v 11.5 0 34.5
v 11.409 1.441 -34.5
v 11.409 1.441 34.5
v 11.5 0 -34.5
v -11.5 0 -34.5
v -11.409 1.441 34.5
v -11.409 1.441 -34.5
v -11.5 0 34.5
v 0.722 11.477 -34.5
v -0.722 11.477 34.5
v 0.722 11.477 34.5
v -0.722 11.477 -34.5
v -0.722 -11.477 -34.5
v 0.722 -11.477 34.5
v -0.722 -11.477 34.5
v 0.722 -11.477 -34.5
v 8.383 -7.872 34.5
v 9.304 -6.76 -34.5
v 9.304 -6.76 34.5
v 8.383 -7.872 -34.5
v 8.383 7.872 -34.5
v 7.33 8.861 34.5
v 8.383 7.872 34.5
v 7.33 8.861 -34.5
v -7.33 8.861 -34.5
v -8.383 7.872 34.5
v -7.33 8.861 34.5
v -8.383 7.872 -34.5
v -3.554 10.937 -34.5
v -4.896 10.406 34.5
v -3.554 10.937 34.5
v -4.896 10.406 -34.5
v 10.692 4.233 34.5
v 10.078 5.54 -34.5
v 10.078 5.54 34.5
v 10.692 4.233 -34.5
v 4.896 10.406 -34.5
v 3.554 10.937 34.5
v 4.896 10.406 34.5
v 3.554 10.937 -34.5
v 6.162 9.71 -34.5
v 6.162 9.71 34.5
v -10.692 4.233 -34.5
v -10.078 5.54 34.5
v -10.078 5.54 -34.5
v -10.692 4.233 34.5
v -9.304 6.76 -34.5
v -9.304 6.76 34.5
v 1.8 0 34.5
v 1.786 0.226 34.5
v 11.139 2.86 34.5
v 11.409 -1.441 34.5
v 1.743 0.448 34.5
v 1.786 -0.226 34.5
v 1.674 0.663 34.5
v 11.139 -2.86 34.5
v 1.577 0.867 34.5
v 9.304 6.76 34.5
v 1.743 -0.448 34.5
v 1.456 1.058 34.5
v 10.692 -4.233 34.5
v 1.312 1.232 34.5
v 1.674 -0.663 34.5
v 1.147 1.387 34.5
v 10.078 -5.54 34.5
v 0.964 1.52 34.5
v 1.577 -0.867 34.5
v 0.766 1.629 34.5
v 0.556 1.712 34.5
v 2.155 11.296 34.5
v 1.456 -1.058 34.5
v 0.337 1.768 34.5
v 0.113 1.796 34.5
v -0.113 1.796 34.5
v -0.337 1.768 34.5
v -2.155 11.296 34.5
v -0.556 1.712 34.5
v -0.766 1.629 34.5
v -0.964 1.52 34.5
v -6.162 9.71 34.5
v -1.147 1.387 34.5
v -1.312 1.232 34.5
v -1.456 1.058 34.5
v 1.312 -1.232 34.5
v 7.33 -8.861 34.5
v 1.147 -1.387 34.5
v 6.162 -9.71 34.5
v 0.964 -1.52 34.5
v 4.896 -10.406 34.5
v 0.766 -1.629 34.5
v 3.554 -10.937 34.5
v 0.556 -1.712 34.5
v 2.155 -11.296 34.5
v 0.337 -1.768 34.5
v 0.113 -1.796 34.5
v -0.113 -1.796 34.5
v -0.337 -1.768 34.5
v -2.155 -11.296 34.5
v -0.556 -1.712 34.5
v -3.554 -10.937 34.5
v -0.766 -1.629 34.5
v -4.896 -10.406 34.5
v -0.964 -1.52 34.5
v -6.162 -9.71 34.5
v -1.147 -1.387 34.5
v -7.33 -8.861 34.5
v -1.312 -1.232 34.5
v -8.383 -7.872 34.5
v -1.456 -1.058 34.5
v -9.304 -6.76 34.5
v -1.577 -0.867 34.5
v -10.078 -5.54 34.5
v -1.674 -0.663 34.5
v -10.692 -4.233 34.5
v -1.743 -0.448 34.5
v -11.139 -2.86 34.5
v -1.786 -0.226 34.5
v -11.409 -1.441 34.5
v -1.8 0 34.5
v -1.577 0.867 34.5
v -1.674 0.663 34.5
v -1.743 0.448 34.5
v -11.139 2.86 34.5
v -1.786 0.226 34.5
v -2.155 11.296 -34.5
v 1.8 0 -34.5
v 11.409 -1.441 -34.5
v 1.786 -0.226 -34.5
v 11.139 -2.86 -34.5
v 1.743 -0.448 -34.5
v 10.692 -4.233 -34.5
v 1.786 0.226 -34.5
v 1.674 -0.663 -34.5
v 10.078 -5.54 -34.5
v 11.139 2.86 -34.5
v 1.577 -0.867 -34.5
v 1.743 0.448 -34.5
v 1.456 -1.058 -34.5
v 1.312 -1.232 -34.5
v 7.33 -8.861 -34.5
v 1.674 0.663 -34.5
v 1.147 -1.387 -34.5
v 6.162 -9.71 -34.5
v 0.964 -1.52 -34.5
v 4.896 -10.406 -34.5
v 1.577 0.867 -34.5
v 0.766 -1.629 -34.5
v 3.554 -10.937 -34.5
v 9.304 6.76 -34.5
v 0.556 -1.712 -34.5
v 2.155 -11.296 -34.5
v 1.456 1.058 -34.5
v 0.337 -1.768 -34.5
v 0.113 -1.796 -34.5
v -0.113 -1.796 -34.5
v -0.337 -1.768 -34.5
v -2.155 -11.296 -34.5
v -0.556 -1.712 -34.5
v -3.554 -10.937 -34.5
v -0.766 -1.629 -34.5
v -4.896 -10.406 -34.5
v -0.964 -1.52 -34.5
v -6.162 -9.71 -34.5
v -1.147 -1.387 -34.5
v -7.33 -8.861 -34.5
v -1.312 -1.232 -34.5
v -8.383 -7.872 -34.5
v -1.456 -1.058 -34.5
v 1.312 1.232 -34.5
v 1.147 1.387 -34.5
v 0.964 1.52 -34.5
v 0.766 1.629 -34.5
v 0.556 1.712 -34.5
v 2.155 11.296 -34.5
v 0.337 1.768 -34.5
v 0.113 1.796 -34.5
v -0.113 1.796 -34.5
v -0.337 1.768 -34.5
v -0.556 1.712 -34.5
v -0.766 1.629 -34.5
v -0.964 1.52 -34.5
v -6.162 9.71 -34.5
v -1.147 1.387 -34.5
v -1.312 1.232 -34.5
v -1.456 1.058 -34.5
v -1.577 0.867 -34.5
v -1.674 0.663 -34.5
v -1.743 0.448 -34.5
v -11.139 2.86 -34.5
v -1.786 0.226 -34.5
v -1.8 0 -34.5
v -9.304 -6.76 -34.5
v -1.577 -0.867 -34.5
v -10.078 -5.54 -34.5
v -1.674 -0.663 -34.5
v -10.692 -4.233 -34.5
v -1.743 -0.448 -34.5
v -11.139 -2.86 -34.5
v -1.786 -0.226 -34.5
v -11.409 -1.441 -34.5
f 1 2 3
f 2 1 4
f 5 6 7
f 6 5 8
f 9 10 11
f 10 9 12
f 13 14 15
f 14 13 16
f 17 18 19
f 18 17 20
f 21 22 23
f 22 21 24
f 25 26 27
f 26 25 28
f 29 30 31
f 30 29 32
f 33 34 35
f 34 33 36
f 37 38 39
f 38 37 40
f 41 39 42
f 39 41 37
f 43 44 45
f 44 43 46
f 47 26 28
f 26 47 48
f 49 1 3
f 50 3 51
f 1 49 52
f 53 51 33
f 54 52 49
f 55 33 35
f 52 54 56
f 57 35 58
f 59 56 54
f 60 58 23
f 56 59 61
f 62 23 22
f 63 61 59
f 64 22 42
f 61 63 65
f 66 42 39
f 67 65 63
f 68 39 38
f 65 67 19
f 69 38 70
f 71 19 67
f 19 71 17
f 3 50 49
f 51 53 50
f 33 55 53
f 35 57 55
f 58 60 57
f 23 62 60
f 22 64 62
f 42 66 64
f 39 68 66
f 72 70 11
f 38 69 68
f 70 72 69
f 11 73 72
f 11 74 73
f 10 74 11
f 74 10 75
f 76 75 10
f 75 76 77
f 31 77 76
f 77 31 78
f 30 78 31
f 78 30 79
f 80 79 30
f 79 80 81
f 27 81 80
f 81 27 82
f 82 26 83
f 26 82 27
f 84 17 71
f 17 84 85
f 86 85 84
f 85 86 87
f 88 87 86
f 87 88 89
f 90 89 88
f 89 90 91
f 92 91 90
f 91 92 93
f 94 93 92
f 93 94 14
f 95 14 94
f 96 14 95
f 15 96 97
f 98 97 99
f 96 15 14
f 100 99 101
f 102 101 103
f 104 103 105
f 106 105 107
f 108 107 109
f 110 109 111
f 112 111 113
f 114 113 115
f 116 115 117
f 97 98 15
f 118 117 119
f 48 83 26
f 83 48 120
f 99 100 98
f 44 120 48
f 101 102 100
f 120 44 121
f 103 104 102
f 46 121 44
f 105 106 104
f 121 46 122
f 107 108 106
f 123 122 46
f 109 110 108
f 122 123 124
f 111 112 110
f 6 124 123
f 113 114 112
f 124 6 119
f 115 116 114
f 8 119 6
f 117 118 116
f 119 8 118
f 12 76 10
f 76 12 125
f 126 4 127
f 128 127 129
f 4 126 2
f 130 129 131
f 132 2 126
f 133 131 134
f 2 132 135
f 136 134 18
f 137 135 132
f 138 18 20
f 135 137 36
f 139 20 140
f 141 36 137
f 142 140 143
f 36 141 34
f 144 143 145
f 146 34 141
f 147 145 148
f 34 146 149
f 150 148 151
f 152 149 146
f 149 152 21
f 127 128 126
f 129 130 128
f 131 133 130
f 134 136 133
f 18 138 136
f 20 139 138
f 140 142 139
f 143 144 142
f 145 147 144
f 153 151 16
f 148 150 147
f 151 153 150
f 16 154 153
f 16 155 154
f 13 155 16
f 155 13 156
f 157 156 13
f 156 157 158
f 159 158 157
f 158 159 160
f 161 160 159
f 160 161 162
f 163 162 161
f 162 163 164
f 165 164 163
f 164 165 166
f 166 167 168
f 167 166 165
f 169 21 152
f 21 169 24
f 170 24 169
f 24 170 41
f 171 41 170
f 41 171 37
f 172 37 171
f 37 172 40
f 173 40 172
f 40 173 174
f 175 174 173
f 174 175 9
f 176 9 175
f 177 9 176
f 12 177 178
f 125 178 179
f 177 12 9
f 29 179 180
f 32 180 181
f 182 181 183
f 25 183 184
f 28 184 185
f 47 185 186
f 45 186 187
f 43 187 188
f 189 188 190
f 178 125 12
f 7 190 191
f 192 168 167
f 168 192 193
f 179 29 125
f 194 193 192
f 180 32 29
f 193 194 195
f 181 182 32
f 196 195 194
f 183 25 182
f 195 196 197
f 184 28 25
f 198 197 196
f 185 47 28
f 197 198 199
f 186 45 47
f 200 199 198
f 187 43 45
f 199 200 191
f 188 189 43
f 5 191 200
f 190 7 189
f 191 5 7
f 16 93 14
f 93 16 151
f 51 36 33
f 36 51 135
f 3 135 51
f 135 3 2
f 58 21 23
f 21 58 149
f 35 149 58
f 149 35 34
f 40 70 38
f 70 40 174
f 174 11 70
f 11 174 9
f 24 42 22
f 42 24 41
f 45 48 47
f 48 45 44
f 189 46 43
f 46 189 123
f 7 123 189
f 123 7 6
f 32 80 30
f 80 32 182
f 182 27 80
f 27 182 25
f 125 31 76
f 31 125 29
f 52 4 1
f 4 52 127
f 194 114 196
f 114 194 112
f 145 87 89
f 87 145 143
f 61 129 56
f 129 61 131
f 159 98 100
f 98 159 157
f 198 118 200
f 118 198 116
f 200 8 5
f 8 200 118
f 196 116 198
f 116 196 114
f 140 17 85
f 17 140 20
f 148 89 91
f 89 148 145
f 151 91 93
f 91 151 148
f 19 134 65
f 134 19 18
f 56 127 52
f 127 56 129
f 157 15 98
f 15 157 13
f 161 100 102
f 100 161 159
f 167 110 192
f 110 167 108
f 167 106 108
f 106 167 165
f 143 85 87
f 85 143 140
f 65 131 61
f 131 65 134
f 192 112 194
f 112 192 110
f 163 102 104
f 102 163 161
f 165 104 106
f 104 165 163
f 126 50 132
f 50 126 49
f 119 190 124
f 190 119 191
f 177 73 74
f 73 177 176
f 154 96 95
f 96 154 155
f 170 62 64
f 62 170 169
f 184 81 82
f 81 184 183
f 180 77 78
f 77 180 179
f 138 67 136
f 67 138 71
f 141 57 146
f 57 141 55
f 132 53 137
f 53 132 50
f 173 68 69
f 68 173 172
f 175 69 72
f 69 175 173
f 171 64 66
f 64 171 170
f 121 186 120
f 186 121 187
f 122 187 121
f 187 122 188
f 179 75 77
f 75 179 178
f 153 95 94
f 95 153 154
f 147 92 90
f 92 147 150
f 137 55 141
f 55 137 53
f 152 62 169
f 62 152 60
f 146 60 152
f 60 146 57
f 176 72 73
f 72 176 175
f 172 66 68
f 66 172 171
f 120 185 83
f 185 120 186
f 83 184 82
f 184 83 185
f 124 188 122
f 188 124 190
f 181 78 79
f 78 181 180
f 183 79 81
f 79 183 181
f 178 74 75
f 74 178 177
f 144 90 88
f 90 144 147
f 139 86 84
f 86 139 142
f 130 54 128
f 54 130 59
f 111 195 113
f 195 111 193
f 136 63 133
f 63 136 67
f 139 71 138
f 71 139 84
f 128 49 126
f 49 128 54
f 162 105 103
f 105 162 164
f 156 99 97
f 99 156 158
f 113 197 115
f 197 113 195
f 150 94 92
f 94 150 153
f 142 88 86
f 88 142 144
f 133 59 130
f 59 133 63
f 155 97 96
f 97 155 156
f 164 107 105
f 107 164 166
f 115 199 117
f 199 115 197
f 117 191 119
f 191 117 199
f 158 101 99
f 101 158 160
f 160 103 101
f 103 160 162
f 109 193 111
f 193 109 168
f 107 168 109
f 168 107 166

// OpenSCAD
$fn = 50;


difference() {
	union() {
		translate(v = [0, 0, -34.5000000000]) {
			cylinder(h = 69, r = 11.5000000000);
		}
	}
	union() {
		translate(v = [0, 0, -100.0000000000]) {
			cylinder(h = 200, r = 1.8000000000);
		}
	}
}
